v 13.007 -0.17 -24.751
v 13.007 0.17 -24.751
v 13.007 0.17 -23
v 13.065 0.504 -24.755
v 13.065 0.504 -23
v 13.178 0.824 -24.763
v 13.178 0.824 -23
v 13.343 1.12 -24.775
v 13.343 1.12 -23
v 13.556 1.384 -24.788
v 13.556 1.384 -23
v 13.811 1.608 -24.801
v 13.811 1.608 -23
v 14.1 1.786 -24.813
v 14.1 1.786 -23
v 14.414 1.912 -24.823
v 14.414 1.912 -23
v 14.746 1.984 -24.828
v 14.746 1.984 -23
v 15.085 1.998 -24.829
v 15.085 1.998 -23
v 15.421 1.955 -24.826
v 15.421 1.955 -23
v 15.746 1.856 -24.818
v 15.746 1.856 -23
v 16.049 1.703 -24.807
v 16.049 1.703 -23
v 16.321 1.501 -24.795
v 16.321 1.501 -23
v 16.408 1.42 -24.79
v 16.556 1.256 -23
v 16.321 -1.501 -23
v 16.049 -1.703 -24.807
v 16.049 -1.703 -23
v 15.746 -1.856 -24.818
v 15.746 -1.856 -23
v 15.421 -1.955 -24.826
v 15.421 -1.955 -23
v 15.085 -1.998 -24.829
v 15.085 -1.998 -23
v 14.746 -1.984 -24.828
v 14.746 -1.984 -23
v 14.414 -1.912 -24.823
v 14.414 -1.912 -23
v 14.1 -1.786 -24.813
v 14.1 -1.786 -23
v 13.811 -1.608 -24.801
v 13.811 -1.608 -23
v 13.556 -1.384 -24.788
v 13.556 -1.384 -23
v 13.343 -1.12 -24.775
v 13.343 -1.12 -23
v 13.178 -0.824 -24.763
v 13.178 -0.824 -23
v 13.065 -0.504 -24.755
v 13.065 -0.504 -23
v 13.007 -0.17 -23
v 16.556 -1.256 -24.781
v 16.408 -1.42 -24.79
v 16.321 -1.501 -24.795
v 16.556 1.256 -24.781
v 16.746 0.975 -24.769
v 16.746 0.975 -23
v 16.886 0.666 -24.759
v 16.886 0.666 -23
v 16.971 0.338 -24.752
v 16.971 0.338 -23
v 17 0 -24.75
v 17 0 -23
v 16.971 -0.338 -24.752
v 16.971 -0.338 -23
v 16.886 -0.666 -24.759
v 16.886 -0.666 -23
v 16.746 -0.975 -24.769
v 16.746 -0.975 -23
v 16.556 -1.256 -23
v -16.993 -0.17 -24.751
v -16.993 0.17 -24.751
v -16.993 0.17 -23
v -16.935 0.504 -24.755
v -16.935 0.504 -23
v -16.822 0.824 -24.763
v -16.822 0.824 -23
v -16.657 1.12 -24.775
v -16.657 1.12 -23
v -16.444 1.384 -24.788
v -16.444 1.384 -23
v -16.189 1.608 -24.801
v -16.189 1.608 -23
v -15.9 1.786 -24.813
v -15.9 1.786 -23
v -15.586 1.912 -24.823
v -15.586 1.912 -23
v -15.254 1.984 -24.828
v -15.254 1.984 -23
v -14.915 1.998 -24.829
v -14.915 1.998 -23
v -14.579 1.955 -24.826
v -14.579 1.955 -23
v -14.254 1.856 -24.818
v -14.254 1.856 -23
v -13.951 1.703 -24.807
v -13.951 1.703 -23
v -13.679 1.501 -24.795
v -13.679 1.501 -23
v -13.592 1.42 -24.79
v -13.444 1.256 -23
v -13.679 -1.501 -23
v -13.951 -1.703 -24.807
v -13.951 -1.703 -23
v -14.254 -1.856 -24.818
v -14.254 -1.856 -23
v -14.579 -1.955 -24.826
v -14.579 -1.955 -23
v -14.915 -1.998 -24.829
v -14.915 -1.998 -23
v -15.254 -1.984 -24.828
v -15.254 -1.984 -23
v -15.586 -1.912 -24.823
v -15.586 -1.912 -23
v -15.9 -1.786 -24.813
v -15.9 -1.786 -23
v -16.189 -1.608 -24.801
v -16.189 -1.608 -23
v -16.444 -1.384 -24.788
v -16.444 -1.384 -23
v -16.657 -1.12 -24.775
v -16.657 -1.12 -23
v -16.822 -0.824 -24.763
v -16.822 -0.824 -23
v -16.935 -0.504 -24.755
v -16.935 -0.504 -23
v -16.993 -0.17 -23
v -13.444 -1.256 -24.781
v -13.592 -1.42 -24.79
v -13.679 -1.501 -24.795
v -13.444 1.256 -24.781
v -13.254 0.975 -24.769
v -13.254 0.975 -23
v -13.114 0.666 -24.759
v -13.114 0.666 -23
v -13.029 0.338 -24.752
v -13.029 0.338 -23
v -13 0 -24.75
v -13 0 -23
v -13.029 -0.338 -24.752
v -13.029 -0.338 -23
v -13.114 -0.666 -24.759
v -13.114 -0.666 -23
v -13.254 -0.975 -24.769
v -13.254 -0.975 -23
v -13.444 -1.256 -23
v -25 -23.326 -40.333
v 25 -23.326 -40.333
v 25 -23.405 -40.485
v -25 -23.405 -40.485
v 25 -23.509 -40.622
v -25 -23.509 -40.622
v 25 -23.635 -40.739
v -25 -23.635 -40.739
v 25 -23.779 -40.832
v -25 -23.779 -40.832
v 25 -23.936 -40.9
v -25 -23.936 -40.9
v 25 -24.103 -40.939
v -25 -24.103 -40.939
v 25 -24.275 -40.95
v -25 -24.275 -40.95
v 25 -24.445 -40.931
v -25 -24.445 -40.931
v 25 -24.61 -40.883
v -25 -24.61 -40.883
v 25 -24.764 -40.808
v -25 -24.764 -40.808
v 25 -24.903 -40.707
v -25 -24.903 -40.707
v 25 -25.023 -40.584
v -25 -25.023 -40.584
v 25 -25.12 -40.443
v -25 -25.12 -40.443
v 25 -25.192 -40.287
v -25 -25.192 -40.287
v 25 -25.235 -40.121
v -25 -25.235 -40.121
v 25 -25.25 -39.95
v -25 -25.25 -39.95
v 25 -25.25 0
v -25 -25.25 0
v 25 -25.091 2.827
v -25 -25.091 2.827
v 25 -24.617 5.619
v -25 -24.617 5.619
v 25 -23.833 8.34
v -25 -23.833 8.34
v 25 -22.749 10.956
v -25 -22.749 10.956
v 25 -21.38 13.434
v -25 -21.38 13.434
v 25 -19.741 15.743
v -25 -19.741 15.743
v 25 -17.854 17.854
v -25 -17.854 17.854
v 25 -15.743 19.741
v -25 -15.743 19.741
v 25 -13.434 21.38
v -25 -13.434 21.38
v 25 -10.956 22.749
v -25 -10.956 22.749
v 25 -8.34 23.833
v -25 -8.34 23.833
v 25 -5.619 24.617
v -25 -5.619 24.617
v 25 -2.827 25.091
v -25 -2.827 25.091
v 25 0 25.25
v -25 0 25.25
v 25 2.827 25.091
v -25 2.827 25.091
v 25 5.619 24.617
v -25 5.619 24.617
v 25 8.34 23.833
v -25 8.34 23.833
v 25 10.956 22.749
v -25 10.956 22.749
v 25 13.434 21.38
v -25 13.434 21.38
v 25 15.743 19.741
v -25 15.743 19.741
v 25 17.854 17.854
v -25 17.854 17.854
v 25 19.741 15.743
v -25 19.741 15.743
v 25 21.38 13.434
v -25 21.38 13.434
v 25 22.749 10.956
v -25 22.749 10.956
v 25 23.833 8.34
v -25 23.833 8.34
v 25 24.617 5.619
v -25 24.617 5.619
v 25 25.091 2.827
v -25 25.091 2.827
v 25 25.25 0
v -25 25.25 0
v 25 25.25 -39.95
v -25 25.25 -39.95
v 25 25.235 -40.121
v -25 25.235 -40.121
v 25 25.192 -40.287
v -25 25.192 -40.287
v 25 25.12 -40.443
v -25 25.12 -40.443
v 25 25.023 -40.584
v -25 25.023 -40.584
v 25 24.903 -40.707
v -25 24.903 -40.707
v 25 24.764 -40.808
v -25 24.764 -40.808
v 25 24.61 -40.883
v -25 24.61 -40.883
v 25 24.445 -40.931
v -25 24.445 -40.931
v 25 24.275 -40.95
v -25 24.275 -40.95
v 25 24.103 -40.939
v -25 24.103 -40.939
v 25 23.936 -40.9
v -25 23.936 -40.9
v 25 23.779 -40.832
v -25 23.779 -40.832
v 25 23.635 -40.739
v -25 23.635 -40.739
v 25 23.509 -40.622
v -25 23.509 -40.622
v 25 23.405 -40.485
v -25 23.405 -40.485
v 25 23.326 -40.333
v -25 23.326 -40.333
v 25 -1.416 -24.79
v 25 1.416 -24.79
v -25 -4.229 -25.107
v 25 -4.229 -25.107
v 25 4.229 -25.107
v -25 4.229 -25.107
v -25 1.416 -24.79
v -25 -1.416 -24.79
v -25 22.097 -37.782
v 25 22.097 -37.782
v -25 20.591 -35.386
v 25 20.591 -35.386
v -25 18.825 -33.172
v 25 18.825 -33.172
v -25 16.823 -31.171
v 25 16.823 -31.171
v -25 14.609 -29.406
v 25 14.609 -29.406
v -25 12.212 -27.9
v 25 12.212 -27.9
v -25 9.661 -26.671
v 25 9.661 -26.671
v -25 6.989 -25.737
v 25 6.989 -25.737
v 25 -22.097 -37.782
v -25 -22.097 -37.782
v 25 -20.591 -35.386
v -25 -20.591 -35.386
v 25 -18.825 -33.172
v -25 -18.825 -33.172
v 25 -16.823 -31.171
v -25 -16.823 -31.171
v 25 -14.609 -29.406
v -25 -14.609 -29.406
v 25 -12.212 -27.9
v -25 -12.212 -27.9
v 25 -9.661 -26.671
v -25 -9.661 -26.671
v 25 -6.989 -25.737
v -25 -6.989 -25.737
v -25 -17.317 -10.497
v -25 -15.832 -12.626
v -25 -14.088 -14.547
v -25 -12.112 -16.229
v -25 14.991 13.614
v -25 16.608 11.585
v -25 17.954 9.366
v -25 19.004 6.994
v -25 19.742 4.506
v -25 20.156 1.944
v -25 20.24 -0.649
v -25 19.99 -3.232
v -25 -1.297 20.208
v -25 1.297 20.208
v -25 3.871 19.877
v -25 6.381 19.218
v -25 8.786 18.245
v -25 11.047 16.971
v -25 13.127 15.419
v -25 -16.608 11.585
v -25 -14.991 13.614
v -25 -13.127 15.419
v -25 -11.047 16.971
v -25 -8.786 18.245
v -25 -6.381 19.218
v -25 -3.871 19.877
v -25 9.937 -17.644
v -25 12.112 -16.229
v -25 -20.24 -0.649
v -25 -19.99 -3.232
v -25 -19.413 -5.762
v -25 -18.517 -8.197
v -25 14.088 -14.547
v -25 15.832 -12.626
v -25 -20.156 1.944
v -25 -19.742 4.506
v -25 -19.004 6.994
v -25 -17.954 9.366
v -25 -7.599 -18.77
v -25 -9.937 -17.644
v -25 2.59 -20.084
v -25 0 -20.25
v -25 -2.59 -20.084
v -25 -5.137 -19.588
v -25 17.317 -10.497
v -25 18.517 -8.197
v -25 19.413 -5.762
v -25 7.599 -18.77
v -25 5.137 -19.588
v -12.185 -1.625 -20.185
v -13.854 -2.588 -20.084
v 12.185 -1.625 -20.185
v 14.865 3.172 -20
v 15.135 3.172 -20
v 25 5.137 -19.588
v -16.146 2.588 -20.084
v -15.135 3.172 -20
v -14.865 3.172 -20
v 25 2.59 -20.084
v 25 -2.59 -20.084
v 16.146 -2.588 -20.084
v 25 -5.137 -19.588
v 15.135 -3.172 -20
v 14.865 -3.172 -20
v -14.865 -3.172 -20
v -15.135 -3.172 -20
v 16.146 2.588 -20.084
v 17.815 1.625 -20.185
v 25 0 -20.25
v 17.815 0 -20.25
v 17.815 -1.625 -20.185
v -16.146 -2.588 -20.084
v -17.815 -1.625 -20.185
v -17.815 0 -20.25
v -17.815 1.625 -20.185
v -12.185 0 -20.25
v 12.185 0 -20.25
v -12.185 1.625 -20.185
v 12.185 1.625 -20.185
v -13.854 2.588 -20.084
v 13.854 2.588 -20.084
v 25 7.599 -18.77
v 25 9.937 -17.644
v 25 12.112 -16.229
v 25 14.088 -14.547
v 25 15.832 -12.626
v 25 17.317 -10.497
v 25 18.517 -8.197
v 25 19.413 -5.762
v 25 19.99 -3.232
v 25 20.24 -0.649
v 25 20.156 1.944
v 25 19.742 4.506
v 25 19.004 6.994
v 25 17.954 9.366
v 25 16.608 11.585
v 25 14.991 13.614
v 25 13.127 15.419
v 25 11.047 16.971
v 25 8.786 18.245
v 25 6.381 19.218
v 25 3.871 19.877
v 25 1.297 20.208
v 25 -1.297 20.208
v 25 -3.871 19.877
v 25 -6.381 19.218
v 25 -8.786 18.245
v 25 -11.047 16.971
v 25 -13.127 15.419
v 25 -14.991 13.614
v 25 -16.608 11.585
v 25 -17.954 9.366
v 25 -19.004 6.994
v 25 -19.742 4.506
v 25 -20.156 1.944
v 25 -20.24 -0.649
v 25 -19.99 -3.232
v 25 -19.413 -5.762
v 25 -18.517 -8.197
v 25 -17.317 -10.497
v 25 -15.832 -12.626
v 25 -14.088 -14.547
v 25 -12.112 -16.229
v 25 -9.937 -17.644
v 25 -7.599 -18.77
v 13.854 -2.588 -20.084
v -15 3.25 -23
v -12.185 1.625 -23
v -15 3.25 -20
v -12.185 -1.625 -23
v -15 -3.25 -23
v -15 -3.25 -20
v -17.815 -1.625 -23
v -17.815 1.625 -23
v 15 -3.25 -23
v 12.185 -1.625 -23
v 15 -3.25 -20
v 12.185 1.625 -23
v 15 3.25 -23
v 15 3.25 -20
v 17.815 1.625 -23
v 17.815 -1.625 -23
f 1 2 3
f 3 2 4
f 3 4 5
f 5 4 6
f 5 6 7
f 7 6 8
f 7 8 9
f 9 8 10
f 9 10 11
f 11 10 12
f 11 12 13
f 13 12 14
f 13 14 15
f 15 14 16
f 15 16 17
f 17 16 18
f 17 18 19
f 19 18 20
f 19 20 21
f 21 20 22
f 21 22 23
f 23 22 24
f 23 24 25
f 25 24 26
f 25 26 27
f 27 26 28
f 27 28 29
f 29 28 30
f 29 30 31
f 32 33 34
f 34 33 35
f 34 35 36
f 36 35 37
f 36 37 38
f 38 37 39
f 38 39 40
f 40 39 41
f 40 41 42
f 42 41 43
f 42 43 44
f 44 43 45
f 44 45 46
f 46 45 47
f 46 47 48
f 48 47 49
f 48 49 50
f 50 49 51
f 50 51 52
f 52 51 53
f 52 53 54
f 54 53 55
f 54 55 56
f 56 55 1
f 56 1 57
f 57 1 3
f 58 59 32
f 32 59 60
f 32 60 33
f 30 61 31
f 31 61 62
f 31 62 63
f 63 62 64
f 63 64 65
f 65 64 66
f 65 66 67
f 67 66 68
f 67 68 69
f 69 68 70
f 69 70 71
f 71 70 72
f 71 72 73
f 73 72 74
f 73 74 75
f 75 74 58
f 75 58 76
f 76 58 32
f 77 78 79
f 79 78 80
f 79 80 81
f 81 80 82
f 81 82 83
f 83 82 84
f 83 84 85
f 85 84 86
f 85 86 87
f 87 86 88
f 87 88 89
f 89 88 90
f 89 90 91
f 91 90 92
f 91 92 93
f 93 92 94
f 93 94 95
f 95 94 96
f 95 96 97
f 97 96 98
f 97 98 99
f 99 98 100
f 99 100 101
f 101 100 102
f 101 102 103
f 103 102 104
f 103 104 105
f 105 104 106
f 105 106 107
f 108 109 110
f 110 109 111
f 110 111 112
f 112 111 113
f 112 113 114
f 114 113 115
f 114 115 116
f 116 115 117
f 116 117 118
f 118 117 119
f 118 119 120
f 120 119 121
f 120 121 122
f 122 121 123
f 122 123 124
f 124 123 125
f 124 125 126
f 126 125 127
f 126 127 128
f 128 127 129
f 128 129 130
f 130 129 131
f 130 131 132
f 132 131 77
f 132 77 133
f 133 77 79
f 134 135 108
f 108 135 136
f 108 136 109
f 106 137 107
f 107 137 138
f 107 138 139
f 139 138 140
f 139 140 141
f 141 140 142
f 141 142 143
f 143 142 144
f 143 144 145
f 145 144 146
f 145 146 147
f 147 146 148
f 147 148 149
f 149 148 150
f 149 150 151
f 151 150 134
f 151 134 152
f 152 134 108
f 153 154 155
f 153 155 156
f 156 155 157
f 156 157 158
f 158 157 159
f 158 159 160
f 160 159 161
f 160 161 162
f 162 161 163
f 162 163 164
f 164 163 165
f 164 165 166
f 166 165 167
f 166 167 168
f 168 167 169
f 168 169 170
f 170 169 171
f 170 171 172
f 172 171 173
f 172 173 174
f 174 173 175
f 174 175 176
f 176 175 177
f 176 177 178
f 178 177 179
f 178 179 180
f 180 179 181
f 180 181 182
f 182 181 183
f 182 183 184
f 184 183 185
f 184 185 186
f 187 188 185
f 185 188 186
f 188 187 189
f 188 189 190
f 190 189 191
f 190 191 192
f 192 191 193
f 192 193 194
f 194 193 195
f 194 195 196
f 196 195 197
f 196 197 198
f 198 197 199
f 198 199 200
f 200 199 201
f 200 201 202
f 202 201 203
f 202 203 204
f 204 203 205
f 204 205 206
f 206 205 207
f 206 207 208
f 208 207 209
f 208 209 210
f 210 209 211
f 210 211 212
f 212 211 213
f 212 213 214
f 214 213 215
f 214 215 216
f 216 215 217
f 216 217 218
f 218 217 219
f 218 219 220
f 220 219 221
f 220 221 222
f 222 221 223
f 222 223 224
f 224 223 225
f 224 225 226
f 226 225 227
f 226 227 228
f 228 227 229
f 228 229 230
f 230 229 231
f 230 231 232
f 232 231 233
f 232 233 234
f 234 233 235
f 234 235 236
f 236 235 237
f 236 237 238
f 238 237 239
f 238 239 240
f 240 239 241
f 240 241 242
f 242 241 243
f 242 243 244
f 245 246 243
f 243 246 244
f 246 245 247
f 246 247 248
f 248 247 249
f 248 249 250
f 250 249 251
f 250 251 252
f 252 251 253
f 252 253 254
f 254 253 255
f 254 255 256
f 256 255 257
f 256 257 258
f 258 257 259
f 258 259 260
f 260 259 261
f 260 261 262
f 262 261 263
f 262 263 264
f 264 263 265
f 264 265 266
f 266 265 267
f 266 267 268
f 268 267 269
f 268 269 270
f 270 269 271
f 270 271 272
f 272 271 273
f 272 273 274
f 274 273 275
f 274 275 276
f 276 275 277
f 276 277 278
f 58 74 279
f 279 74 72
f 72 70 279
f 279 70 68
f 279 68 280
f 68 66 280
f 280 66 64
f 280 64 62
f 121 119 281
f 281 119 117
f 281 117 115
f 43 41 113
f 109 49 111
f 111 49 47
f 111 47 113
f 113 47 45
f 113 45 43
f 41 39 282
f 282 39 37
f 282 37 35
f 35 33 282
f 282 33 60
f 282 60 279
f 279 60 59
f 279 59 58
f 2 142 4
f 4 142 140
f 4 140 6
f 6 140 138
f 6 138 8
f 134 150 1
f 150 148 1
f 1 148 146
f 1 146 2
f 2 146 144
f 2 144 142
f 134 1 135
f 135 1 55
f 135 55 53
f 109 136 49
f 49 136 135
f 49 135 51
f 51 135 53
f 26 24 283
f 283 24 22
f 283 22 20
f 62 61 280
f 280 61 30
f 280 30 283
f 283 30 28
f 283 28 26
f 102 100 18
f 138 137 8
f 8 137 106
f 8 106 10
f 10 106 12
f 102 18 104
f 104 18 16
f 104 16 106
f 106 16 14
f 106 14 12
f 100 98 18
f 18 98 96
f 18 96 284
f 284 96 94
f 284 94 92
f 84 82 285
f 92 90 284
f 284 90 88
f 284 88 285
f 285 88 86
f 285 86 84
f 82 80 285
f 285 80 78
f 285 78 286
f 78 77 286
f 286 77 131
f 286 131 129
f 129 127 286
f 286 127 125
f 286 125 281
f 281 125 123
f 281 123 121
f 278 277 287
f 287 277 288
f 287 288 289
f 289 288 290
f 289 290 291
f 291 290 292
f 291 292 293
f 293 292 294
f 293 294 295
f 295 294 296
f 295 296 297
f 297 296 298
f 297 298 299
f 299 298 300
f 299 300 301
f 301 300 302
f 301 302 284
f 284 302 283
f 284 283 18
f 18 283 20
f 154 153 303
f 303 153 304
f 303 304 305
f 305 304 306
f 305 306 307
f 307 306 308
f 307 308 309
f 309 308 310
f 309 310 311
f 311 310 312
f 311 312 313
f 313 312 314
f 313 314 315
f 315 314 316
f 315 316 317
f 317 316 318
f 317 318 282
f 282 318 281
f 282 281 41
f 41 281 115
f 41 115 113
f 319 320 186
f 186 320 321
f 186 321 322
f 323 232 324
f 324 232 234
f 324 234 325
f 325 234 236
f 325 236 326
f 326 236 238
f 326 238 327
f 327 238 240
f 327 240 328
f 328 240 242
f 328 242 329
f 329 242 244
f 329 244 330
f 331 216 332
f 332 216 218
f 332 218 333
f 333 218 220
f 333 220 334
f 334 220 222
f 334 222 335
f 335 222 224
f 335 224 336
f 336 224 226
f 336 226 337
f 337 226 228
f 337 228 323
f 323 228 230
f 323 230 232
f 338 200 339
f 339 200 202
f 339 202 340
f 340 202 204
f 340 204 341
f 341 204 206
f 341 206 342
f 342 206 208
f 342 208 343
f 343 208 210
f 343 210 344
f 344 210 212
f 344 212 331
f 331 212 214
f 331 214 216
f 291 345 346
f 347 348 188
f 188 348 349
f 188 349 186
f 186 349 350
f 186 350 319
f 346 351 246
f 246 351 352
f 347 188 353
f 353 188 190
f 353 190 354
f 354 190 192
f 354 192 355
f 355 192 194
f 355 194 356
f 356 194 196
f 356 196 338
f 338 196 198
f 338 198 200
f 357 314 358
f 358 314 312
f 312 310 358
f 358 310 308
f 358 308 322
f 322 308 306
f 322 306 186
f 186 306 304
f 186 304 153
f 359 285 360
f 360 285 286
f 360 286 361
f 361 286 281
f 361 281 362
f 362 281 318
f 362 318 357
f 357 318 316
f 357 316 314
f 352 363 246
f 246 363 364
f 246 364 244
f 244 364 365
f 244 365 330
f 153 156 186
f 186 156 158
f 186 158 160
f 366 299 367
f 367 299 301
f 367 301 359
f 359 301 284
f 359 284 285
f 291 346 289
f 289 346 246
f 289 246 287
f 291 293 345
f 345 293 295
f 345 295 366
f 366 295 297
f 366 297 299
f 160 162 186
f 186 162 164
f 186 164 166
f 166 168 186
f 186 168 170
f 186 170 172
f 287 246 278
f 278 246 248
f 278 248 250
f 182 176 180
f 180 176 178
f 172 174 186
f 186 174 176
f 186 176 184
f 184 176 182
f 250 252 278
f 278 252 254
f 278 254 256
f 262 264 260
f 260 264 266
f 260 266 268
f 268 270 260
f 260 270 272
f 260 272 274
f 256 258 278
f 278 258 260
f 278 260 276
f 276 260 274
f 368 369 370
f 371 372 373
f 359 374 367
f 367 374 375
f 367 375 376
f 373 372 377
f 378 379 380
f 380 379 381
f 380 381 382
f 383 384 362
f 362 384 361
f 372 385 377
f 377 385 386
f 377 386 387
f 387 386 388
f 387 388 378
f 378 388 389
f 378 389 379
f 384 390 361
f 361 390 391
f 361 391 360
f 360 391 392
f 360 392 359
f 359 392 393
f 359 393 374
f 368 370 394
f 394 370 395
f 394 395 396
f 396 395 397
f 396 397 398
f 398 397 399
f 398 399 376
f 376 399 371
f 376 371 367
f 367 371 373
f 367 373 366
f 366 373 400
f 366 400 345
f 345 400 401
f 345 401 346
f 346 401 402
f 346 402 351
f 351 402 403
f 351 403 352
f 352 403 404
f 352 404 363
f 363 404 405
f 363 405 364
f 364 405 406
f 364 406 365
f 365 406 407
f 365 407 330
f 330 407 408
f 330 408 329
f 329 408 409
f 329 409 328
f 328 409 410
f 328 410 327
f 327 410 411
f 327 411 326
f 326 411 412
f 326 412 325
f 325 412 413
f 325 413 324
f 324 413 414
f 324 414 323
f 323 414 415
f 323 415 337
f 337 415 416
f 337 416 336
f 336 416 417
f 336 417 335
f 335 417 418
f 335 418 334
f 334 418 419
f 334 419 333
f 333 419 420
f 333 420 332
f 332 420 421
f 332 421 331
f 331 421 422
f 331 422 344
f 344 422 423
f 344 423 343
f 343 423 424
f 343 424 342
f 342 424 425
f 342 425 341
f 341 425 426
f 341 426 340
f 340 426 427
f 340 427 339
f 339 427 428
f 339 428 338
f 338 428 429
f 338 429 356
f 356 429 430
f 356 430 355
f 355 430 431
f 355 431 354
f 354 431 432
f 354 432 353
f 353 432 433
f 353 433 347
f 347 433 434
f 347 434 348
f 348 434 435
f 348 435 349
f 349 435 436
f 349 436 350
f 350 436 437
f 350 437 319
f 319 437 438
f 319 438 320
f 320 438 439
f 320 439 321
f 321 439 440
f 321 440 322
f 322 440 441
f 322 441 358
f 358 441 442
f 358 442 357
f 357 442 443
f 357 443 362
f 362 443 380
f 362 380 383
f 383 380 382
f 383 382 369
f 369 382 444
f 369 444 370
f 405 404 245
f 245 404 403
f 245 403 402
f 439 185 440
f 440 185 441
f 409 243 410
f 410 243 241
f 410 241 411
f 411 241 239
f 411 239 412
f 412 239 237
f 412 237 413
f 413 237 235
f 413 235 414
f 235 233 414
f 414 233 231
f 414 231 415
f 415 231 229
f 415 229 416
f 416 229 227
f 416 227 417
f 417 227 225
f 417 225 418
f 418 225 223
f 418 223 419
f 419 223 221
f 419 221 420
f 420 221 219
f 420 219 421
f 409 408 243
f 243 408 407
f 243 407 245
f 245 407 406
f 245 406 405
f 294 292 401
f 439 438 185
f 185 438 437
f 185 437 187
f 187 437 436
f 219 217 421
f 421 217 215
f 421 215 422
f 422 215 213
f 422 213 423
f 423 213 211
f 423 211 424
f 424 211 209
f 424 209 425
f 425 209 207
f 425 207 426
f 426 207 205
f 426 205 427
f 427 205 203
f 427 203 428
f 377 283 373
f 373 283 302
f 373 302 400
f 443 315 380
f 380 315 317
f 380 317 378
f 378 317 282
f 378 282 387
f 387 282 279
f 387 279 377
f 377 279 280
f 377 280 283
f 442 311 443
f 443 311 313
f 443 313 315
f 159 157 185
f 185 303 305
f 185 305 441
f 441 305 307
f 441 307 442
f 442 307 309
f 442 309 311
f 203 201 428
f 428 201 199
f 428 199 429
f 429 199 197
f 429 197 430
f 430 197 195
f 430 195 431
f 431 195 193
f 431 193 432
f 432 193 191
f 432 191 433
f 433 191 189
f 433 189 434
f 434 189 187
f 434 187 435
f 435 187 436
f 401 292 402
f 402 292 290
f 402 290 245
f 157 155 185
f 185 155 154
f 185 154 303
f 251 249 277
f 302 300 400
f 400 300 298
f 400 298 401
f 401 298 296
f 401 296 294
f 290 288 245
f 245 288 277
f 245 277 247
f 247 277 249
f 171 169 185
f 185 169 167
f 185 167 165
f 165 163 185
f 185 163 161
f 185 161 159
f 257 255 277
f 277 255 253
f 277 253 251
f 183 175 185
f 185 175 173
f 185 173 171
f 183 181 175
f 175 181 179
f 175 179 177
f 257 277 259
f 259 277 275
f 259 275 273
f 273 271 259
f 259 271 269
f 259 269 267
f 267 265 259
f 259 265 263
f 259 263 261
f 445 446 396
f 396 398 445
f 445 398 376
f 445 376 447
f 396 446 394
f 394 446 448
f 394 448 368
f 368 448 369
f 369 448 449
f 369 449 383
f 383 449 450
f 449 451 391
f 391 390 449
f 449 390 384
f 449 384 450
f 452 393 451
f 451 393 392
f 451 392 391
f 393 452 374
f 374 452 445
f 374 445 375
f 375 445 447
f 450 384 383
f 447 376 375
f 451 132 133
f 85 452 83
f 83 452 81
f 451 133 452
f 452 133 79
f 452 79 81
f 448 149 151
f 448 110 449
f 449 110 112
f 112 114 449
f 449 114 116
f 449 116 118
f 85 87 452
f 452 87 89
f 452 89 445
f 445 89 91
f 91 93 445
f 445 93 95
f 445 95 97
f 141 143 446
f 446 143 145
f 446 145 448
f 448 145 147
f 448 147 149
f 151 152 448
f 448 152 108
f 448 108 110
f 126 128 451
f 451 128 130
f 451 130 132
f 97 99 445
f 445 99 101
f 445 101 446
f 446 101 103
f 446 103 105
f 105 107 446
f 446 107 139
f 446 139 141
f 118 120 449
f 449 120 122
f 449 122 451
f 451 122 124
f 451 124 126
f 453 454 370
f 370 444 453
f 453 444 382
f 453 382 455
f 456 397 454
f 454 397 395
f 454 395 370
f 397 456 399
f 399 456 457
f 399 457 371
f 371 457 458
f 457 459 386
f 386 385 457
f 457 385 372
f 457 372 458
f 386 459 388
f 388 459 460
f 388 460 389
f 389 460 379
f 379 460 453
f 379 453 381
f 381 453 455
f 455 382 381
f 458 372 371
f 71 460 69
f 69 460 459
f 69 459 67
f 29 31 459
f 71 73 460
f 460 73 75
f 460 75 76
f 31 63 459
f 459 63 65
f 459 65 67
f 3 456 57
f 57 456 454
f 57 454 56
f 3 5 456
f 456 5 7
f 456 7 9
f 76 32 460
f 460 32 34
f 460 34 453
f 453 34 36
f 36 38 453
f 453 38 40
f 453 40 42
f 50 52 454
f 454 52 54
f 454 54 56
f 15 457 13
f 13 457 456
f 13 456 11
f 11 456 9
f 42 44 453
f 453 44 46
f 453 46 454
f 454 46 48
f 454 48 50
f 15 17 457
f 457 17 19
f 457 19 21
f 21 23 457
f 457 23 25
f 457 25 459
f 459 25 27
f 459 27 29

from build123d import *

# Parameters (mm, degrees)
EXTRUDE_1_DEPTH      = 25
EXTRUDE_1_DEPTH_BACK = 25
SKETCH_1_R           = 20.25
SKETCH_2_R           = 2
CUT_EXTRUDE_1_DEPTH  = 41
CUT_EXTRUDE_2_DEPTH  = 3


with BuildPart() as part:
    # 草图1 → 凸台-拉伸1 (new, two sides: drawn at the far end of the back side and taken through both)
    with BuildSketch(Plane(origin=(0, 0, 0), x_dir=(0, 0, -1), z_dir=(1, 0, 0)).offset(-EXTRUDE_1_DEPTH_BACK)):
        with BuildLine():
            Line((39.950124379, 25.25), (0, 25.25))
            ThreePointArc((0, 25.25), (-25.25, 0), (0, -25.25))
            Line((0, -25.25), (39.950124379, -25.25))
            ThreePointArc((39.950124379, -25.25), (40.930891814, -24.445180015), (40.332976783, -23.326190476))
            ThreePointArc((40.332976783, -23.326190476), (24.75, 0), (40.332976783, 23.326190476))
            ThreePointArc((40.332976783, 23.326190476), (40.930891814, 24.445180015), (39.950124379, 25.25))
        make_face()
        Circle(SKETCH_1_R, mode=Mode.SUBTRACT)
    extrude(amount=EXTRUDE_1_DEPTH + EXTRUDE_1_DEPTH_BACK)

    # 草图2 → 切除-拉伸1 (cut)
    with BuildSketch(Plane.XY):
        with Locations((-15, 0)):
            Circle(SKETCH_2_R)
        with Locations((15, 0)):
            Circle(SKETCH_2_R)
    extrude(amount=-CUT_EXTRUDE_1_DEPTH, mode=Mode.SUBTRACT)

    # 草图3 → 切除-拉伸2 (cut)
    with BuildSketch(Plane.XY.offset(-20)):
        Polygon((-15, 3.25), (-17.814582562, 1.625), (-17.814582562, -1.625), (-15, -3.25), (-12.185417438, -1.625), (-12.185417438, 1.625), align=None)
        Polygon((15, 3.25), (12.185417438, 1.625), (12.185417438, -1.625), (15, -3.25), (17.814582562, -1.625), (17.814582562, 1.625), align=None)
    extrude(amount=-CUT_EXTRUDE_2_DEPTH, mode=Mode.SUBTRACT)


solid = part.part
